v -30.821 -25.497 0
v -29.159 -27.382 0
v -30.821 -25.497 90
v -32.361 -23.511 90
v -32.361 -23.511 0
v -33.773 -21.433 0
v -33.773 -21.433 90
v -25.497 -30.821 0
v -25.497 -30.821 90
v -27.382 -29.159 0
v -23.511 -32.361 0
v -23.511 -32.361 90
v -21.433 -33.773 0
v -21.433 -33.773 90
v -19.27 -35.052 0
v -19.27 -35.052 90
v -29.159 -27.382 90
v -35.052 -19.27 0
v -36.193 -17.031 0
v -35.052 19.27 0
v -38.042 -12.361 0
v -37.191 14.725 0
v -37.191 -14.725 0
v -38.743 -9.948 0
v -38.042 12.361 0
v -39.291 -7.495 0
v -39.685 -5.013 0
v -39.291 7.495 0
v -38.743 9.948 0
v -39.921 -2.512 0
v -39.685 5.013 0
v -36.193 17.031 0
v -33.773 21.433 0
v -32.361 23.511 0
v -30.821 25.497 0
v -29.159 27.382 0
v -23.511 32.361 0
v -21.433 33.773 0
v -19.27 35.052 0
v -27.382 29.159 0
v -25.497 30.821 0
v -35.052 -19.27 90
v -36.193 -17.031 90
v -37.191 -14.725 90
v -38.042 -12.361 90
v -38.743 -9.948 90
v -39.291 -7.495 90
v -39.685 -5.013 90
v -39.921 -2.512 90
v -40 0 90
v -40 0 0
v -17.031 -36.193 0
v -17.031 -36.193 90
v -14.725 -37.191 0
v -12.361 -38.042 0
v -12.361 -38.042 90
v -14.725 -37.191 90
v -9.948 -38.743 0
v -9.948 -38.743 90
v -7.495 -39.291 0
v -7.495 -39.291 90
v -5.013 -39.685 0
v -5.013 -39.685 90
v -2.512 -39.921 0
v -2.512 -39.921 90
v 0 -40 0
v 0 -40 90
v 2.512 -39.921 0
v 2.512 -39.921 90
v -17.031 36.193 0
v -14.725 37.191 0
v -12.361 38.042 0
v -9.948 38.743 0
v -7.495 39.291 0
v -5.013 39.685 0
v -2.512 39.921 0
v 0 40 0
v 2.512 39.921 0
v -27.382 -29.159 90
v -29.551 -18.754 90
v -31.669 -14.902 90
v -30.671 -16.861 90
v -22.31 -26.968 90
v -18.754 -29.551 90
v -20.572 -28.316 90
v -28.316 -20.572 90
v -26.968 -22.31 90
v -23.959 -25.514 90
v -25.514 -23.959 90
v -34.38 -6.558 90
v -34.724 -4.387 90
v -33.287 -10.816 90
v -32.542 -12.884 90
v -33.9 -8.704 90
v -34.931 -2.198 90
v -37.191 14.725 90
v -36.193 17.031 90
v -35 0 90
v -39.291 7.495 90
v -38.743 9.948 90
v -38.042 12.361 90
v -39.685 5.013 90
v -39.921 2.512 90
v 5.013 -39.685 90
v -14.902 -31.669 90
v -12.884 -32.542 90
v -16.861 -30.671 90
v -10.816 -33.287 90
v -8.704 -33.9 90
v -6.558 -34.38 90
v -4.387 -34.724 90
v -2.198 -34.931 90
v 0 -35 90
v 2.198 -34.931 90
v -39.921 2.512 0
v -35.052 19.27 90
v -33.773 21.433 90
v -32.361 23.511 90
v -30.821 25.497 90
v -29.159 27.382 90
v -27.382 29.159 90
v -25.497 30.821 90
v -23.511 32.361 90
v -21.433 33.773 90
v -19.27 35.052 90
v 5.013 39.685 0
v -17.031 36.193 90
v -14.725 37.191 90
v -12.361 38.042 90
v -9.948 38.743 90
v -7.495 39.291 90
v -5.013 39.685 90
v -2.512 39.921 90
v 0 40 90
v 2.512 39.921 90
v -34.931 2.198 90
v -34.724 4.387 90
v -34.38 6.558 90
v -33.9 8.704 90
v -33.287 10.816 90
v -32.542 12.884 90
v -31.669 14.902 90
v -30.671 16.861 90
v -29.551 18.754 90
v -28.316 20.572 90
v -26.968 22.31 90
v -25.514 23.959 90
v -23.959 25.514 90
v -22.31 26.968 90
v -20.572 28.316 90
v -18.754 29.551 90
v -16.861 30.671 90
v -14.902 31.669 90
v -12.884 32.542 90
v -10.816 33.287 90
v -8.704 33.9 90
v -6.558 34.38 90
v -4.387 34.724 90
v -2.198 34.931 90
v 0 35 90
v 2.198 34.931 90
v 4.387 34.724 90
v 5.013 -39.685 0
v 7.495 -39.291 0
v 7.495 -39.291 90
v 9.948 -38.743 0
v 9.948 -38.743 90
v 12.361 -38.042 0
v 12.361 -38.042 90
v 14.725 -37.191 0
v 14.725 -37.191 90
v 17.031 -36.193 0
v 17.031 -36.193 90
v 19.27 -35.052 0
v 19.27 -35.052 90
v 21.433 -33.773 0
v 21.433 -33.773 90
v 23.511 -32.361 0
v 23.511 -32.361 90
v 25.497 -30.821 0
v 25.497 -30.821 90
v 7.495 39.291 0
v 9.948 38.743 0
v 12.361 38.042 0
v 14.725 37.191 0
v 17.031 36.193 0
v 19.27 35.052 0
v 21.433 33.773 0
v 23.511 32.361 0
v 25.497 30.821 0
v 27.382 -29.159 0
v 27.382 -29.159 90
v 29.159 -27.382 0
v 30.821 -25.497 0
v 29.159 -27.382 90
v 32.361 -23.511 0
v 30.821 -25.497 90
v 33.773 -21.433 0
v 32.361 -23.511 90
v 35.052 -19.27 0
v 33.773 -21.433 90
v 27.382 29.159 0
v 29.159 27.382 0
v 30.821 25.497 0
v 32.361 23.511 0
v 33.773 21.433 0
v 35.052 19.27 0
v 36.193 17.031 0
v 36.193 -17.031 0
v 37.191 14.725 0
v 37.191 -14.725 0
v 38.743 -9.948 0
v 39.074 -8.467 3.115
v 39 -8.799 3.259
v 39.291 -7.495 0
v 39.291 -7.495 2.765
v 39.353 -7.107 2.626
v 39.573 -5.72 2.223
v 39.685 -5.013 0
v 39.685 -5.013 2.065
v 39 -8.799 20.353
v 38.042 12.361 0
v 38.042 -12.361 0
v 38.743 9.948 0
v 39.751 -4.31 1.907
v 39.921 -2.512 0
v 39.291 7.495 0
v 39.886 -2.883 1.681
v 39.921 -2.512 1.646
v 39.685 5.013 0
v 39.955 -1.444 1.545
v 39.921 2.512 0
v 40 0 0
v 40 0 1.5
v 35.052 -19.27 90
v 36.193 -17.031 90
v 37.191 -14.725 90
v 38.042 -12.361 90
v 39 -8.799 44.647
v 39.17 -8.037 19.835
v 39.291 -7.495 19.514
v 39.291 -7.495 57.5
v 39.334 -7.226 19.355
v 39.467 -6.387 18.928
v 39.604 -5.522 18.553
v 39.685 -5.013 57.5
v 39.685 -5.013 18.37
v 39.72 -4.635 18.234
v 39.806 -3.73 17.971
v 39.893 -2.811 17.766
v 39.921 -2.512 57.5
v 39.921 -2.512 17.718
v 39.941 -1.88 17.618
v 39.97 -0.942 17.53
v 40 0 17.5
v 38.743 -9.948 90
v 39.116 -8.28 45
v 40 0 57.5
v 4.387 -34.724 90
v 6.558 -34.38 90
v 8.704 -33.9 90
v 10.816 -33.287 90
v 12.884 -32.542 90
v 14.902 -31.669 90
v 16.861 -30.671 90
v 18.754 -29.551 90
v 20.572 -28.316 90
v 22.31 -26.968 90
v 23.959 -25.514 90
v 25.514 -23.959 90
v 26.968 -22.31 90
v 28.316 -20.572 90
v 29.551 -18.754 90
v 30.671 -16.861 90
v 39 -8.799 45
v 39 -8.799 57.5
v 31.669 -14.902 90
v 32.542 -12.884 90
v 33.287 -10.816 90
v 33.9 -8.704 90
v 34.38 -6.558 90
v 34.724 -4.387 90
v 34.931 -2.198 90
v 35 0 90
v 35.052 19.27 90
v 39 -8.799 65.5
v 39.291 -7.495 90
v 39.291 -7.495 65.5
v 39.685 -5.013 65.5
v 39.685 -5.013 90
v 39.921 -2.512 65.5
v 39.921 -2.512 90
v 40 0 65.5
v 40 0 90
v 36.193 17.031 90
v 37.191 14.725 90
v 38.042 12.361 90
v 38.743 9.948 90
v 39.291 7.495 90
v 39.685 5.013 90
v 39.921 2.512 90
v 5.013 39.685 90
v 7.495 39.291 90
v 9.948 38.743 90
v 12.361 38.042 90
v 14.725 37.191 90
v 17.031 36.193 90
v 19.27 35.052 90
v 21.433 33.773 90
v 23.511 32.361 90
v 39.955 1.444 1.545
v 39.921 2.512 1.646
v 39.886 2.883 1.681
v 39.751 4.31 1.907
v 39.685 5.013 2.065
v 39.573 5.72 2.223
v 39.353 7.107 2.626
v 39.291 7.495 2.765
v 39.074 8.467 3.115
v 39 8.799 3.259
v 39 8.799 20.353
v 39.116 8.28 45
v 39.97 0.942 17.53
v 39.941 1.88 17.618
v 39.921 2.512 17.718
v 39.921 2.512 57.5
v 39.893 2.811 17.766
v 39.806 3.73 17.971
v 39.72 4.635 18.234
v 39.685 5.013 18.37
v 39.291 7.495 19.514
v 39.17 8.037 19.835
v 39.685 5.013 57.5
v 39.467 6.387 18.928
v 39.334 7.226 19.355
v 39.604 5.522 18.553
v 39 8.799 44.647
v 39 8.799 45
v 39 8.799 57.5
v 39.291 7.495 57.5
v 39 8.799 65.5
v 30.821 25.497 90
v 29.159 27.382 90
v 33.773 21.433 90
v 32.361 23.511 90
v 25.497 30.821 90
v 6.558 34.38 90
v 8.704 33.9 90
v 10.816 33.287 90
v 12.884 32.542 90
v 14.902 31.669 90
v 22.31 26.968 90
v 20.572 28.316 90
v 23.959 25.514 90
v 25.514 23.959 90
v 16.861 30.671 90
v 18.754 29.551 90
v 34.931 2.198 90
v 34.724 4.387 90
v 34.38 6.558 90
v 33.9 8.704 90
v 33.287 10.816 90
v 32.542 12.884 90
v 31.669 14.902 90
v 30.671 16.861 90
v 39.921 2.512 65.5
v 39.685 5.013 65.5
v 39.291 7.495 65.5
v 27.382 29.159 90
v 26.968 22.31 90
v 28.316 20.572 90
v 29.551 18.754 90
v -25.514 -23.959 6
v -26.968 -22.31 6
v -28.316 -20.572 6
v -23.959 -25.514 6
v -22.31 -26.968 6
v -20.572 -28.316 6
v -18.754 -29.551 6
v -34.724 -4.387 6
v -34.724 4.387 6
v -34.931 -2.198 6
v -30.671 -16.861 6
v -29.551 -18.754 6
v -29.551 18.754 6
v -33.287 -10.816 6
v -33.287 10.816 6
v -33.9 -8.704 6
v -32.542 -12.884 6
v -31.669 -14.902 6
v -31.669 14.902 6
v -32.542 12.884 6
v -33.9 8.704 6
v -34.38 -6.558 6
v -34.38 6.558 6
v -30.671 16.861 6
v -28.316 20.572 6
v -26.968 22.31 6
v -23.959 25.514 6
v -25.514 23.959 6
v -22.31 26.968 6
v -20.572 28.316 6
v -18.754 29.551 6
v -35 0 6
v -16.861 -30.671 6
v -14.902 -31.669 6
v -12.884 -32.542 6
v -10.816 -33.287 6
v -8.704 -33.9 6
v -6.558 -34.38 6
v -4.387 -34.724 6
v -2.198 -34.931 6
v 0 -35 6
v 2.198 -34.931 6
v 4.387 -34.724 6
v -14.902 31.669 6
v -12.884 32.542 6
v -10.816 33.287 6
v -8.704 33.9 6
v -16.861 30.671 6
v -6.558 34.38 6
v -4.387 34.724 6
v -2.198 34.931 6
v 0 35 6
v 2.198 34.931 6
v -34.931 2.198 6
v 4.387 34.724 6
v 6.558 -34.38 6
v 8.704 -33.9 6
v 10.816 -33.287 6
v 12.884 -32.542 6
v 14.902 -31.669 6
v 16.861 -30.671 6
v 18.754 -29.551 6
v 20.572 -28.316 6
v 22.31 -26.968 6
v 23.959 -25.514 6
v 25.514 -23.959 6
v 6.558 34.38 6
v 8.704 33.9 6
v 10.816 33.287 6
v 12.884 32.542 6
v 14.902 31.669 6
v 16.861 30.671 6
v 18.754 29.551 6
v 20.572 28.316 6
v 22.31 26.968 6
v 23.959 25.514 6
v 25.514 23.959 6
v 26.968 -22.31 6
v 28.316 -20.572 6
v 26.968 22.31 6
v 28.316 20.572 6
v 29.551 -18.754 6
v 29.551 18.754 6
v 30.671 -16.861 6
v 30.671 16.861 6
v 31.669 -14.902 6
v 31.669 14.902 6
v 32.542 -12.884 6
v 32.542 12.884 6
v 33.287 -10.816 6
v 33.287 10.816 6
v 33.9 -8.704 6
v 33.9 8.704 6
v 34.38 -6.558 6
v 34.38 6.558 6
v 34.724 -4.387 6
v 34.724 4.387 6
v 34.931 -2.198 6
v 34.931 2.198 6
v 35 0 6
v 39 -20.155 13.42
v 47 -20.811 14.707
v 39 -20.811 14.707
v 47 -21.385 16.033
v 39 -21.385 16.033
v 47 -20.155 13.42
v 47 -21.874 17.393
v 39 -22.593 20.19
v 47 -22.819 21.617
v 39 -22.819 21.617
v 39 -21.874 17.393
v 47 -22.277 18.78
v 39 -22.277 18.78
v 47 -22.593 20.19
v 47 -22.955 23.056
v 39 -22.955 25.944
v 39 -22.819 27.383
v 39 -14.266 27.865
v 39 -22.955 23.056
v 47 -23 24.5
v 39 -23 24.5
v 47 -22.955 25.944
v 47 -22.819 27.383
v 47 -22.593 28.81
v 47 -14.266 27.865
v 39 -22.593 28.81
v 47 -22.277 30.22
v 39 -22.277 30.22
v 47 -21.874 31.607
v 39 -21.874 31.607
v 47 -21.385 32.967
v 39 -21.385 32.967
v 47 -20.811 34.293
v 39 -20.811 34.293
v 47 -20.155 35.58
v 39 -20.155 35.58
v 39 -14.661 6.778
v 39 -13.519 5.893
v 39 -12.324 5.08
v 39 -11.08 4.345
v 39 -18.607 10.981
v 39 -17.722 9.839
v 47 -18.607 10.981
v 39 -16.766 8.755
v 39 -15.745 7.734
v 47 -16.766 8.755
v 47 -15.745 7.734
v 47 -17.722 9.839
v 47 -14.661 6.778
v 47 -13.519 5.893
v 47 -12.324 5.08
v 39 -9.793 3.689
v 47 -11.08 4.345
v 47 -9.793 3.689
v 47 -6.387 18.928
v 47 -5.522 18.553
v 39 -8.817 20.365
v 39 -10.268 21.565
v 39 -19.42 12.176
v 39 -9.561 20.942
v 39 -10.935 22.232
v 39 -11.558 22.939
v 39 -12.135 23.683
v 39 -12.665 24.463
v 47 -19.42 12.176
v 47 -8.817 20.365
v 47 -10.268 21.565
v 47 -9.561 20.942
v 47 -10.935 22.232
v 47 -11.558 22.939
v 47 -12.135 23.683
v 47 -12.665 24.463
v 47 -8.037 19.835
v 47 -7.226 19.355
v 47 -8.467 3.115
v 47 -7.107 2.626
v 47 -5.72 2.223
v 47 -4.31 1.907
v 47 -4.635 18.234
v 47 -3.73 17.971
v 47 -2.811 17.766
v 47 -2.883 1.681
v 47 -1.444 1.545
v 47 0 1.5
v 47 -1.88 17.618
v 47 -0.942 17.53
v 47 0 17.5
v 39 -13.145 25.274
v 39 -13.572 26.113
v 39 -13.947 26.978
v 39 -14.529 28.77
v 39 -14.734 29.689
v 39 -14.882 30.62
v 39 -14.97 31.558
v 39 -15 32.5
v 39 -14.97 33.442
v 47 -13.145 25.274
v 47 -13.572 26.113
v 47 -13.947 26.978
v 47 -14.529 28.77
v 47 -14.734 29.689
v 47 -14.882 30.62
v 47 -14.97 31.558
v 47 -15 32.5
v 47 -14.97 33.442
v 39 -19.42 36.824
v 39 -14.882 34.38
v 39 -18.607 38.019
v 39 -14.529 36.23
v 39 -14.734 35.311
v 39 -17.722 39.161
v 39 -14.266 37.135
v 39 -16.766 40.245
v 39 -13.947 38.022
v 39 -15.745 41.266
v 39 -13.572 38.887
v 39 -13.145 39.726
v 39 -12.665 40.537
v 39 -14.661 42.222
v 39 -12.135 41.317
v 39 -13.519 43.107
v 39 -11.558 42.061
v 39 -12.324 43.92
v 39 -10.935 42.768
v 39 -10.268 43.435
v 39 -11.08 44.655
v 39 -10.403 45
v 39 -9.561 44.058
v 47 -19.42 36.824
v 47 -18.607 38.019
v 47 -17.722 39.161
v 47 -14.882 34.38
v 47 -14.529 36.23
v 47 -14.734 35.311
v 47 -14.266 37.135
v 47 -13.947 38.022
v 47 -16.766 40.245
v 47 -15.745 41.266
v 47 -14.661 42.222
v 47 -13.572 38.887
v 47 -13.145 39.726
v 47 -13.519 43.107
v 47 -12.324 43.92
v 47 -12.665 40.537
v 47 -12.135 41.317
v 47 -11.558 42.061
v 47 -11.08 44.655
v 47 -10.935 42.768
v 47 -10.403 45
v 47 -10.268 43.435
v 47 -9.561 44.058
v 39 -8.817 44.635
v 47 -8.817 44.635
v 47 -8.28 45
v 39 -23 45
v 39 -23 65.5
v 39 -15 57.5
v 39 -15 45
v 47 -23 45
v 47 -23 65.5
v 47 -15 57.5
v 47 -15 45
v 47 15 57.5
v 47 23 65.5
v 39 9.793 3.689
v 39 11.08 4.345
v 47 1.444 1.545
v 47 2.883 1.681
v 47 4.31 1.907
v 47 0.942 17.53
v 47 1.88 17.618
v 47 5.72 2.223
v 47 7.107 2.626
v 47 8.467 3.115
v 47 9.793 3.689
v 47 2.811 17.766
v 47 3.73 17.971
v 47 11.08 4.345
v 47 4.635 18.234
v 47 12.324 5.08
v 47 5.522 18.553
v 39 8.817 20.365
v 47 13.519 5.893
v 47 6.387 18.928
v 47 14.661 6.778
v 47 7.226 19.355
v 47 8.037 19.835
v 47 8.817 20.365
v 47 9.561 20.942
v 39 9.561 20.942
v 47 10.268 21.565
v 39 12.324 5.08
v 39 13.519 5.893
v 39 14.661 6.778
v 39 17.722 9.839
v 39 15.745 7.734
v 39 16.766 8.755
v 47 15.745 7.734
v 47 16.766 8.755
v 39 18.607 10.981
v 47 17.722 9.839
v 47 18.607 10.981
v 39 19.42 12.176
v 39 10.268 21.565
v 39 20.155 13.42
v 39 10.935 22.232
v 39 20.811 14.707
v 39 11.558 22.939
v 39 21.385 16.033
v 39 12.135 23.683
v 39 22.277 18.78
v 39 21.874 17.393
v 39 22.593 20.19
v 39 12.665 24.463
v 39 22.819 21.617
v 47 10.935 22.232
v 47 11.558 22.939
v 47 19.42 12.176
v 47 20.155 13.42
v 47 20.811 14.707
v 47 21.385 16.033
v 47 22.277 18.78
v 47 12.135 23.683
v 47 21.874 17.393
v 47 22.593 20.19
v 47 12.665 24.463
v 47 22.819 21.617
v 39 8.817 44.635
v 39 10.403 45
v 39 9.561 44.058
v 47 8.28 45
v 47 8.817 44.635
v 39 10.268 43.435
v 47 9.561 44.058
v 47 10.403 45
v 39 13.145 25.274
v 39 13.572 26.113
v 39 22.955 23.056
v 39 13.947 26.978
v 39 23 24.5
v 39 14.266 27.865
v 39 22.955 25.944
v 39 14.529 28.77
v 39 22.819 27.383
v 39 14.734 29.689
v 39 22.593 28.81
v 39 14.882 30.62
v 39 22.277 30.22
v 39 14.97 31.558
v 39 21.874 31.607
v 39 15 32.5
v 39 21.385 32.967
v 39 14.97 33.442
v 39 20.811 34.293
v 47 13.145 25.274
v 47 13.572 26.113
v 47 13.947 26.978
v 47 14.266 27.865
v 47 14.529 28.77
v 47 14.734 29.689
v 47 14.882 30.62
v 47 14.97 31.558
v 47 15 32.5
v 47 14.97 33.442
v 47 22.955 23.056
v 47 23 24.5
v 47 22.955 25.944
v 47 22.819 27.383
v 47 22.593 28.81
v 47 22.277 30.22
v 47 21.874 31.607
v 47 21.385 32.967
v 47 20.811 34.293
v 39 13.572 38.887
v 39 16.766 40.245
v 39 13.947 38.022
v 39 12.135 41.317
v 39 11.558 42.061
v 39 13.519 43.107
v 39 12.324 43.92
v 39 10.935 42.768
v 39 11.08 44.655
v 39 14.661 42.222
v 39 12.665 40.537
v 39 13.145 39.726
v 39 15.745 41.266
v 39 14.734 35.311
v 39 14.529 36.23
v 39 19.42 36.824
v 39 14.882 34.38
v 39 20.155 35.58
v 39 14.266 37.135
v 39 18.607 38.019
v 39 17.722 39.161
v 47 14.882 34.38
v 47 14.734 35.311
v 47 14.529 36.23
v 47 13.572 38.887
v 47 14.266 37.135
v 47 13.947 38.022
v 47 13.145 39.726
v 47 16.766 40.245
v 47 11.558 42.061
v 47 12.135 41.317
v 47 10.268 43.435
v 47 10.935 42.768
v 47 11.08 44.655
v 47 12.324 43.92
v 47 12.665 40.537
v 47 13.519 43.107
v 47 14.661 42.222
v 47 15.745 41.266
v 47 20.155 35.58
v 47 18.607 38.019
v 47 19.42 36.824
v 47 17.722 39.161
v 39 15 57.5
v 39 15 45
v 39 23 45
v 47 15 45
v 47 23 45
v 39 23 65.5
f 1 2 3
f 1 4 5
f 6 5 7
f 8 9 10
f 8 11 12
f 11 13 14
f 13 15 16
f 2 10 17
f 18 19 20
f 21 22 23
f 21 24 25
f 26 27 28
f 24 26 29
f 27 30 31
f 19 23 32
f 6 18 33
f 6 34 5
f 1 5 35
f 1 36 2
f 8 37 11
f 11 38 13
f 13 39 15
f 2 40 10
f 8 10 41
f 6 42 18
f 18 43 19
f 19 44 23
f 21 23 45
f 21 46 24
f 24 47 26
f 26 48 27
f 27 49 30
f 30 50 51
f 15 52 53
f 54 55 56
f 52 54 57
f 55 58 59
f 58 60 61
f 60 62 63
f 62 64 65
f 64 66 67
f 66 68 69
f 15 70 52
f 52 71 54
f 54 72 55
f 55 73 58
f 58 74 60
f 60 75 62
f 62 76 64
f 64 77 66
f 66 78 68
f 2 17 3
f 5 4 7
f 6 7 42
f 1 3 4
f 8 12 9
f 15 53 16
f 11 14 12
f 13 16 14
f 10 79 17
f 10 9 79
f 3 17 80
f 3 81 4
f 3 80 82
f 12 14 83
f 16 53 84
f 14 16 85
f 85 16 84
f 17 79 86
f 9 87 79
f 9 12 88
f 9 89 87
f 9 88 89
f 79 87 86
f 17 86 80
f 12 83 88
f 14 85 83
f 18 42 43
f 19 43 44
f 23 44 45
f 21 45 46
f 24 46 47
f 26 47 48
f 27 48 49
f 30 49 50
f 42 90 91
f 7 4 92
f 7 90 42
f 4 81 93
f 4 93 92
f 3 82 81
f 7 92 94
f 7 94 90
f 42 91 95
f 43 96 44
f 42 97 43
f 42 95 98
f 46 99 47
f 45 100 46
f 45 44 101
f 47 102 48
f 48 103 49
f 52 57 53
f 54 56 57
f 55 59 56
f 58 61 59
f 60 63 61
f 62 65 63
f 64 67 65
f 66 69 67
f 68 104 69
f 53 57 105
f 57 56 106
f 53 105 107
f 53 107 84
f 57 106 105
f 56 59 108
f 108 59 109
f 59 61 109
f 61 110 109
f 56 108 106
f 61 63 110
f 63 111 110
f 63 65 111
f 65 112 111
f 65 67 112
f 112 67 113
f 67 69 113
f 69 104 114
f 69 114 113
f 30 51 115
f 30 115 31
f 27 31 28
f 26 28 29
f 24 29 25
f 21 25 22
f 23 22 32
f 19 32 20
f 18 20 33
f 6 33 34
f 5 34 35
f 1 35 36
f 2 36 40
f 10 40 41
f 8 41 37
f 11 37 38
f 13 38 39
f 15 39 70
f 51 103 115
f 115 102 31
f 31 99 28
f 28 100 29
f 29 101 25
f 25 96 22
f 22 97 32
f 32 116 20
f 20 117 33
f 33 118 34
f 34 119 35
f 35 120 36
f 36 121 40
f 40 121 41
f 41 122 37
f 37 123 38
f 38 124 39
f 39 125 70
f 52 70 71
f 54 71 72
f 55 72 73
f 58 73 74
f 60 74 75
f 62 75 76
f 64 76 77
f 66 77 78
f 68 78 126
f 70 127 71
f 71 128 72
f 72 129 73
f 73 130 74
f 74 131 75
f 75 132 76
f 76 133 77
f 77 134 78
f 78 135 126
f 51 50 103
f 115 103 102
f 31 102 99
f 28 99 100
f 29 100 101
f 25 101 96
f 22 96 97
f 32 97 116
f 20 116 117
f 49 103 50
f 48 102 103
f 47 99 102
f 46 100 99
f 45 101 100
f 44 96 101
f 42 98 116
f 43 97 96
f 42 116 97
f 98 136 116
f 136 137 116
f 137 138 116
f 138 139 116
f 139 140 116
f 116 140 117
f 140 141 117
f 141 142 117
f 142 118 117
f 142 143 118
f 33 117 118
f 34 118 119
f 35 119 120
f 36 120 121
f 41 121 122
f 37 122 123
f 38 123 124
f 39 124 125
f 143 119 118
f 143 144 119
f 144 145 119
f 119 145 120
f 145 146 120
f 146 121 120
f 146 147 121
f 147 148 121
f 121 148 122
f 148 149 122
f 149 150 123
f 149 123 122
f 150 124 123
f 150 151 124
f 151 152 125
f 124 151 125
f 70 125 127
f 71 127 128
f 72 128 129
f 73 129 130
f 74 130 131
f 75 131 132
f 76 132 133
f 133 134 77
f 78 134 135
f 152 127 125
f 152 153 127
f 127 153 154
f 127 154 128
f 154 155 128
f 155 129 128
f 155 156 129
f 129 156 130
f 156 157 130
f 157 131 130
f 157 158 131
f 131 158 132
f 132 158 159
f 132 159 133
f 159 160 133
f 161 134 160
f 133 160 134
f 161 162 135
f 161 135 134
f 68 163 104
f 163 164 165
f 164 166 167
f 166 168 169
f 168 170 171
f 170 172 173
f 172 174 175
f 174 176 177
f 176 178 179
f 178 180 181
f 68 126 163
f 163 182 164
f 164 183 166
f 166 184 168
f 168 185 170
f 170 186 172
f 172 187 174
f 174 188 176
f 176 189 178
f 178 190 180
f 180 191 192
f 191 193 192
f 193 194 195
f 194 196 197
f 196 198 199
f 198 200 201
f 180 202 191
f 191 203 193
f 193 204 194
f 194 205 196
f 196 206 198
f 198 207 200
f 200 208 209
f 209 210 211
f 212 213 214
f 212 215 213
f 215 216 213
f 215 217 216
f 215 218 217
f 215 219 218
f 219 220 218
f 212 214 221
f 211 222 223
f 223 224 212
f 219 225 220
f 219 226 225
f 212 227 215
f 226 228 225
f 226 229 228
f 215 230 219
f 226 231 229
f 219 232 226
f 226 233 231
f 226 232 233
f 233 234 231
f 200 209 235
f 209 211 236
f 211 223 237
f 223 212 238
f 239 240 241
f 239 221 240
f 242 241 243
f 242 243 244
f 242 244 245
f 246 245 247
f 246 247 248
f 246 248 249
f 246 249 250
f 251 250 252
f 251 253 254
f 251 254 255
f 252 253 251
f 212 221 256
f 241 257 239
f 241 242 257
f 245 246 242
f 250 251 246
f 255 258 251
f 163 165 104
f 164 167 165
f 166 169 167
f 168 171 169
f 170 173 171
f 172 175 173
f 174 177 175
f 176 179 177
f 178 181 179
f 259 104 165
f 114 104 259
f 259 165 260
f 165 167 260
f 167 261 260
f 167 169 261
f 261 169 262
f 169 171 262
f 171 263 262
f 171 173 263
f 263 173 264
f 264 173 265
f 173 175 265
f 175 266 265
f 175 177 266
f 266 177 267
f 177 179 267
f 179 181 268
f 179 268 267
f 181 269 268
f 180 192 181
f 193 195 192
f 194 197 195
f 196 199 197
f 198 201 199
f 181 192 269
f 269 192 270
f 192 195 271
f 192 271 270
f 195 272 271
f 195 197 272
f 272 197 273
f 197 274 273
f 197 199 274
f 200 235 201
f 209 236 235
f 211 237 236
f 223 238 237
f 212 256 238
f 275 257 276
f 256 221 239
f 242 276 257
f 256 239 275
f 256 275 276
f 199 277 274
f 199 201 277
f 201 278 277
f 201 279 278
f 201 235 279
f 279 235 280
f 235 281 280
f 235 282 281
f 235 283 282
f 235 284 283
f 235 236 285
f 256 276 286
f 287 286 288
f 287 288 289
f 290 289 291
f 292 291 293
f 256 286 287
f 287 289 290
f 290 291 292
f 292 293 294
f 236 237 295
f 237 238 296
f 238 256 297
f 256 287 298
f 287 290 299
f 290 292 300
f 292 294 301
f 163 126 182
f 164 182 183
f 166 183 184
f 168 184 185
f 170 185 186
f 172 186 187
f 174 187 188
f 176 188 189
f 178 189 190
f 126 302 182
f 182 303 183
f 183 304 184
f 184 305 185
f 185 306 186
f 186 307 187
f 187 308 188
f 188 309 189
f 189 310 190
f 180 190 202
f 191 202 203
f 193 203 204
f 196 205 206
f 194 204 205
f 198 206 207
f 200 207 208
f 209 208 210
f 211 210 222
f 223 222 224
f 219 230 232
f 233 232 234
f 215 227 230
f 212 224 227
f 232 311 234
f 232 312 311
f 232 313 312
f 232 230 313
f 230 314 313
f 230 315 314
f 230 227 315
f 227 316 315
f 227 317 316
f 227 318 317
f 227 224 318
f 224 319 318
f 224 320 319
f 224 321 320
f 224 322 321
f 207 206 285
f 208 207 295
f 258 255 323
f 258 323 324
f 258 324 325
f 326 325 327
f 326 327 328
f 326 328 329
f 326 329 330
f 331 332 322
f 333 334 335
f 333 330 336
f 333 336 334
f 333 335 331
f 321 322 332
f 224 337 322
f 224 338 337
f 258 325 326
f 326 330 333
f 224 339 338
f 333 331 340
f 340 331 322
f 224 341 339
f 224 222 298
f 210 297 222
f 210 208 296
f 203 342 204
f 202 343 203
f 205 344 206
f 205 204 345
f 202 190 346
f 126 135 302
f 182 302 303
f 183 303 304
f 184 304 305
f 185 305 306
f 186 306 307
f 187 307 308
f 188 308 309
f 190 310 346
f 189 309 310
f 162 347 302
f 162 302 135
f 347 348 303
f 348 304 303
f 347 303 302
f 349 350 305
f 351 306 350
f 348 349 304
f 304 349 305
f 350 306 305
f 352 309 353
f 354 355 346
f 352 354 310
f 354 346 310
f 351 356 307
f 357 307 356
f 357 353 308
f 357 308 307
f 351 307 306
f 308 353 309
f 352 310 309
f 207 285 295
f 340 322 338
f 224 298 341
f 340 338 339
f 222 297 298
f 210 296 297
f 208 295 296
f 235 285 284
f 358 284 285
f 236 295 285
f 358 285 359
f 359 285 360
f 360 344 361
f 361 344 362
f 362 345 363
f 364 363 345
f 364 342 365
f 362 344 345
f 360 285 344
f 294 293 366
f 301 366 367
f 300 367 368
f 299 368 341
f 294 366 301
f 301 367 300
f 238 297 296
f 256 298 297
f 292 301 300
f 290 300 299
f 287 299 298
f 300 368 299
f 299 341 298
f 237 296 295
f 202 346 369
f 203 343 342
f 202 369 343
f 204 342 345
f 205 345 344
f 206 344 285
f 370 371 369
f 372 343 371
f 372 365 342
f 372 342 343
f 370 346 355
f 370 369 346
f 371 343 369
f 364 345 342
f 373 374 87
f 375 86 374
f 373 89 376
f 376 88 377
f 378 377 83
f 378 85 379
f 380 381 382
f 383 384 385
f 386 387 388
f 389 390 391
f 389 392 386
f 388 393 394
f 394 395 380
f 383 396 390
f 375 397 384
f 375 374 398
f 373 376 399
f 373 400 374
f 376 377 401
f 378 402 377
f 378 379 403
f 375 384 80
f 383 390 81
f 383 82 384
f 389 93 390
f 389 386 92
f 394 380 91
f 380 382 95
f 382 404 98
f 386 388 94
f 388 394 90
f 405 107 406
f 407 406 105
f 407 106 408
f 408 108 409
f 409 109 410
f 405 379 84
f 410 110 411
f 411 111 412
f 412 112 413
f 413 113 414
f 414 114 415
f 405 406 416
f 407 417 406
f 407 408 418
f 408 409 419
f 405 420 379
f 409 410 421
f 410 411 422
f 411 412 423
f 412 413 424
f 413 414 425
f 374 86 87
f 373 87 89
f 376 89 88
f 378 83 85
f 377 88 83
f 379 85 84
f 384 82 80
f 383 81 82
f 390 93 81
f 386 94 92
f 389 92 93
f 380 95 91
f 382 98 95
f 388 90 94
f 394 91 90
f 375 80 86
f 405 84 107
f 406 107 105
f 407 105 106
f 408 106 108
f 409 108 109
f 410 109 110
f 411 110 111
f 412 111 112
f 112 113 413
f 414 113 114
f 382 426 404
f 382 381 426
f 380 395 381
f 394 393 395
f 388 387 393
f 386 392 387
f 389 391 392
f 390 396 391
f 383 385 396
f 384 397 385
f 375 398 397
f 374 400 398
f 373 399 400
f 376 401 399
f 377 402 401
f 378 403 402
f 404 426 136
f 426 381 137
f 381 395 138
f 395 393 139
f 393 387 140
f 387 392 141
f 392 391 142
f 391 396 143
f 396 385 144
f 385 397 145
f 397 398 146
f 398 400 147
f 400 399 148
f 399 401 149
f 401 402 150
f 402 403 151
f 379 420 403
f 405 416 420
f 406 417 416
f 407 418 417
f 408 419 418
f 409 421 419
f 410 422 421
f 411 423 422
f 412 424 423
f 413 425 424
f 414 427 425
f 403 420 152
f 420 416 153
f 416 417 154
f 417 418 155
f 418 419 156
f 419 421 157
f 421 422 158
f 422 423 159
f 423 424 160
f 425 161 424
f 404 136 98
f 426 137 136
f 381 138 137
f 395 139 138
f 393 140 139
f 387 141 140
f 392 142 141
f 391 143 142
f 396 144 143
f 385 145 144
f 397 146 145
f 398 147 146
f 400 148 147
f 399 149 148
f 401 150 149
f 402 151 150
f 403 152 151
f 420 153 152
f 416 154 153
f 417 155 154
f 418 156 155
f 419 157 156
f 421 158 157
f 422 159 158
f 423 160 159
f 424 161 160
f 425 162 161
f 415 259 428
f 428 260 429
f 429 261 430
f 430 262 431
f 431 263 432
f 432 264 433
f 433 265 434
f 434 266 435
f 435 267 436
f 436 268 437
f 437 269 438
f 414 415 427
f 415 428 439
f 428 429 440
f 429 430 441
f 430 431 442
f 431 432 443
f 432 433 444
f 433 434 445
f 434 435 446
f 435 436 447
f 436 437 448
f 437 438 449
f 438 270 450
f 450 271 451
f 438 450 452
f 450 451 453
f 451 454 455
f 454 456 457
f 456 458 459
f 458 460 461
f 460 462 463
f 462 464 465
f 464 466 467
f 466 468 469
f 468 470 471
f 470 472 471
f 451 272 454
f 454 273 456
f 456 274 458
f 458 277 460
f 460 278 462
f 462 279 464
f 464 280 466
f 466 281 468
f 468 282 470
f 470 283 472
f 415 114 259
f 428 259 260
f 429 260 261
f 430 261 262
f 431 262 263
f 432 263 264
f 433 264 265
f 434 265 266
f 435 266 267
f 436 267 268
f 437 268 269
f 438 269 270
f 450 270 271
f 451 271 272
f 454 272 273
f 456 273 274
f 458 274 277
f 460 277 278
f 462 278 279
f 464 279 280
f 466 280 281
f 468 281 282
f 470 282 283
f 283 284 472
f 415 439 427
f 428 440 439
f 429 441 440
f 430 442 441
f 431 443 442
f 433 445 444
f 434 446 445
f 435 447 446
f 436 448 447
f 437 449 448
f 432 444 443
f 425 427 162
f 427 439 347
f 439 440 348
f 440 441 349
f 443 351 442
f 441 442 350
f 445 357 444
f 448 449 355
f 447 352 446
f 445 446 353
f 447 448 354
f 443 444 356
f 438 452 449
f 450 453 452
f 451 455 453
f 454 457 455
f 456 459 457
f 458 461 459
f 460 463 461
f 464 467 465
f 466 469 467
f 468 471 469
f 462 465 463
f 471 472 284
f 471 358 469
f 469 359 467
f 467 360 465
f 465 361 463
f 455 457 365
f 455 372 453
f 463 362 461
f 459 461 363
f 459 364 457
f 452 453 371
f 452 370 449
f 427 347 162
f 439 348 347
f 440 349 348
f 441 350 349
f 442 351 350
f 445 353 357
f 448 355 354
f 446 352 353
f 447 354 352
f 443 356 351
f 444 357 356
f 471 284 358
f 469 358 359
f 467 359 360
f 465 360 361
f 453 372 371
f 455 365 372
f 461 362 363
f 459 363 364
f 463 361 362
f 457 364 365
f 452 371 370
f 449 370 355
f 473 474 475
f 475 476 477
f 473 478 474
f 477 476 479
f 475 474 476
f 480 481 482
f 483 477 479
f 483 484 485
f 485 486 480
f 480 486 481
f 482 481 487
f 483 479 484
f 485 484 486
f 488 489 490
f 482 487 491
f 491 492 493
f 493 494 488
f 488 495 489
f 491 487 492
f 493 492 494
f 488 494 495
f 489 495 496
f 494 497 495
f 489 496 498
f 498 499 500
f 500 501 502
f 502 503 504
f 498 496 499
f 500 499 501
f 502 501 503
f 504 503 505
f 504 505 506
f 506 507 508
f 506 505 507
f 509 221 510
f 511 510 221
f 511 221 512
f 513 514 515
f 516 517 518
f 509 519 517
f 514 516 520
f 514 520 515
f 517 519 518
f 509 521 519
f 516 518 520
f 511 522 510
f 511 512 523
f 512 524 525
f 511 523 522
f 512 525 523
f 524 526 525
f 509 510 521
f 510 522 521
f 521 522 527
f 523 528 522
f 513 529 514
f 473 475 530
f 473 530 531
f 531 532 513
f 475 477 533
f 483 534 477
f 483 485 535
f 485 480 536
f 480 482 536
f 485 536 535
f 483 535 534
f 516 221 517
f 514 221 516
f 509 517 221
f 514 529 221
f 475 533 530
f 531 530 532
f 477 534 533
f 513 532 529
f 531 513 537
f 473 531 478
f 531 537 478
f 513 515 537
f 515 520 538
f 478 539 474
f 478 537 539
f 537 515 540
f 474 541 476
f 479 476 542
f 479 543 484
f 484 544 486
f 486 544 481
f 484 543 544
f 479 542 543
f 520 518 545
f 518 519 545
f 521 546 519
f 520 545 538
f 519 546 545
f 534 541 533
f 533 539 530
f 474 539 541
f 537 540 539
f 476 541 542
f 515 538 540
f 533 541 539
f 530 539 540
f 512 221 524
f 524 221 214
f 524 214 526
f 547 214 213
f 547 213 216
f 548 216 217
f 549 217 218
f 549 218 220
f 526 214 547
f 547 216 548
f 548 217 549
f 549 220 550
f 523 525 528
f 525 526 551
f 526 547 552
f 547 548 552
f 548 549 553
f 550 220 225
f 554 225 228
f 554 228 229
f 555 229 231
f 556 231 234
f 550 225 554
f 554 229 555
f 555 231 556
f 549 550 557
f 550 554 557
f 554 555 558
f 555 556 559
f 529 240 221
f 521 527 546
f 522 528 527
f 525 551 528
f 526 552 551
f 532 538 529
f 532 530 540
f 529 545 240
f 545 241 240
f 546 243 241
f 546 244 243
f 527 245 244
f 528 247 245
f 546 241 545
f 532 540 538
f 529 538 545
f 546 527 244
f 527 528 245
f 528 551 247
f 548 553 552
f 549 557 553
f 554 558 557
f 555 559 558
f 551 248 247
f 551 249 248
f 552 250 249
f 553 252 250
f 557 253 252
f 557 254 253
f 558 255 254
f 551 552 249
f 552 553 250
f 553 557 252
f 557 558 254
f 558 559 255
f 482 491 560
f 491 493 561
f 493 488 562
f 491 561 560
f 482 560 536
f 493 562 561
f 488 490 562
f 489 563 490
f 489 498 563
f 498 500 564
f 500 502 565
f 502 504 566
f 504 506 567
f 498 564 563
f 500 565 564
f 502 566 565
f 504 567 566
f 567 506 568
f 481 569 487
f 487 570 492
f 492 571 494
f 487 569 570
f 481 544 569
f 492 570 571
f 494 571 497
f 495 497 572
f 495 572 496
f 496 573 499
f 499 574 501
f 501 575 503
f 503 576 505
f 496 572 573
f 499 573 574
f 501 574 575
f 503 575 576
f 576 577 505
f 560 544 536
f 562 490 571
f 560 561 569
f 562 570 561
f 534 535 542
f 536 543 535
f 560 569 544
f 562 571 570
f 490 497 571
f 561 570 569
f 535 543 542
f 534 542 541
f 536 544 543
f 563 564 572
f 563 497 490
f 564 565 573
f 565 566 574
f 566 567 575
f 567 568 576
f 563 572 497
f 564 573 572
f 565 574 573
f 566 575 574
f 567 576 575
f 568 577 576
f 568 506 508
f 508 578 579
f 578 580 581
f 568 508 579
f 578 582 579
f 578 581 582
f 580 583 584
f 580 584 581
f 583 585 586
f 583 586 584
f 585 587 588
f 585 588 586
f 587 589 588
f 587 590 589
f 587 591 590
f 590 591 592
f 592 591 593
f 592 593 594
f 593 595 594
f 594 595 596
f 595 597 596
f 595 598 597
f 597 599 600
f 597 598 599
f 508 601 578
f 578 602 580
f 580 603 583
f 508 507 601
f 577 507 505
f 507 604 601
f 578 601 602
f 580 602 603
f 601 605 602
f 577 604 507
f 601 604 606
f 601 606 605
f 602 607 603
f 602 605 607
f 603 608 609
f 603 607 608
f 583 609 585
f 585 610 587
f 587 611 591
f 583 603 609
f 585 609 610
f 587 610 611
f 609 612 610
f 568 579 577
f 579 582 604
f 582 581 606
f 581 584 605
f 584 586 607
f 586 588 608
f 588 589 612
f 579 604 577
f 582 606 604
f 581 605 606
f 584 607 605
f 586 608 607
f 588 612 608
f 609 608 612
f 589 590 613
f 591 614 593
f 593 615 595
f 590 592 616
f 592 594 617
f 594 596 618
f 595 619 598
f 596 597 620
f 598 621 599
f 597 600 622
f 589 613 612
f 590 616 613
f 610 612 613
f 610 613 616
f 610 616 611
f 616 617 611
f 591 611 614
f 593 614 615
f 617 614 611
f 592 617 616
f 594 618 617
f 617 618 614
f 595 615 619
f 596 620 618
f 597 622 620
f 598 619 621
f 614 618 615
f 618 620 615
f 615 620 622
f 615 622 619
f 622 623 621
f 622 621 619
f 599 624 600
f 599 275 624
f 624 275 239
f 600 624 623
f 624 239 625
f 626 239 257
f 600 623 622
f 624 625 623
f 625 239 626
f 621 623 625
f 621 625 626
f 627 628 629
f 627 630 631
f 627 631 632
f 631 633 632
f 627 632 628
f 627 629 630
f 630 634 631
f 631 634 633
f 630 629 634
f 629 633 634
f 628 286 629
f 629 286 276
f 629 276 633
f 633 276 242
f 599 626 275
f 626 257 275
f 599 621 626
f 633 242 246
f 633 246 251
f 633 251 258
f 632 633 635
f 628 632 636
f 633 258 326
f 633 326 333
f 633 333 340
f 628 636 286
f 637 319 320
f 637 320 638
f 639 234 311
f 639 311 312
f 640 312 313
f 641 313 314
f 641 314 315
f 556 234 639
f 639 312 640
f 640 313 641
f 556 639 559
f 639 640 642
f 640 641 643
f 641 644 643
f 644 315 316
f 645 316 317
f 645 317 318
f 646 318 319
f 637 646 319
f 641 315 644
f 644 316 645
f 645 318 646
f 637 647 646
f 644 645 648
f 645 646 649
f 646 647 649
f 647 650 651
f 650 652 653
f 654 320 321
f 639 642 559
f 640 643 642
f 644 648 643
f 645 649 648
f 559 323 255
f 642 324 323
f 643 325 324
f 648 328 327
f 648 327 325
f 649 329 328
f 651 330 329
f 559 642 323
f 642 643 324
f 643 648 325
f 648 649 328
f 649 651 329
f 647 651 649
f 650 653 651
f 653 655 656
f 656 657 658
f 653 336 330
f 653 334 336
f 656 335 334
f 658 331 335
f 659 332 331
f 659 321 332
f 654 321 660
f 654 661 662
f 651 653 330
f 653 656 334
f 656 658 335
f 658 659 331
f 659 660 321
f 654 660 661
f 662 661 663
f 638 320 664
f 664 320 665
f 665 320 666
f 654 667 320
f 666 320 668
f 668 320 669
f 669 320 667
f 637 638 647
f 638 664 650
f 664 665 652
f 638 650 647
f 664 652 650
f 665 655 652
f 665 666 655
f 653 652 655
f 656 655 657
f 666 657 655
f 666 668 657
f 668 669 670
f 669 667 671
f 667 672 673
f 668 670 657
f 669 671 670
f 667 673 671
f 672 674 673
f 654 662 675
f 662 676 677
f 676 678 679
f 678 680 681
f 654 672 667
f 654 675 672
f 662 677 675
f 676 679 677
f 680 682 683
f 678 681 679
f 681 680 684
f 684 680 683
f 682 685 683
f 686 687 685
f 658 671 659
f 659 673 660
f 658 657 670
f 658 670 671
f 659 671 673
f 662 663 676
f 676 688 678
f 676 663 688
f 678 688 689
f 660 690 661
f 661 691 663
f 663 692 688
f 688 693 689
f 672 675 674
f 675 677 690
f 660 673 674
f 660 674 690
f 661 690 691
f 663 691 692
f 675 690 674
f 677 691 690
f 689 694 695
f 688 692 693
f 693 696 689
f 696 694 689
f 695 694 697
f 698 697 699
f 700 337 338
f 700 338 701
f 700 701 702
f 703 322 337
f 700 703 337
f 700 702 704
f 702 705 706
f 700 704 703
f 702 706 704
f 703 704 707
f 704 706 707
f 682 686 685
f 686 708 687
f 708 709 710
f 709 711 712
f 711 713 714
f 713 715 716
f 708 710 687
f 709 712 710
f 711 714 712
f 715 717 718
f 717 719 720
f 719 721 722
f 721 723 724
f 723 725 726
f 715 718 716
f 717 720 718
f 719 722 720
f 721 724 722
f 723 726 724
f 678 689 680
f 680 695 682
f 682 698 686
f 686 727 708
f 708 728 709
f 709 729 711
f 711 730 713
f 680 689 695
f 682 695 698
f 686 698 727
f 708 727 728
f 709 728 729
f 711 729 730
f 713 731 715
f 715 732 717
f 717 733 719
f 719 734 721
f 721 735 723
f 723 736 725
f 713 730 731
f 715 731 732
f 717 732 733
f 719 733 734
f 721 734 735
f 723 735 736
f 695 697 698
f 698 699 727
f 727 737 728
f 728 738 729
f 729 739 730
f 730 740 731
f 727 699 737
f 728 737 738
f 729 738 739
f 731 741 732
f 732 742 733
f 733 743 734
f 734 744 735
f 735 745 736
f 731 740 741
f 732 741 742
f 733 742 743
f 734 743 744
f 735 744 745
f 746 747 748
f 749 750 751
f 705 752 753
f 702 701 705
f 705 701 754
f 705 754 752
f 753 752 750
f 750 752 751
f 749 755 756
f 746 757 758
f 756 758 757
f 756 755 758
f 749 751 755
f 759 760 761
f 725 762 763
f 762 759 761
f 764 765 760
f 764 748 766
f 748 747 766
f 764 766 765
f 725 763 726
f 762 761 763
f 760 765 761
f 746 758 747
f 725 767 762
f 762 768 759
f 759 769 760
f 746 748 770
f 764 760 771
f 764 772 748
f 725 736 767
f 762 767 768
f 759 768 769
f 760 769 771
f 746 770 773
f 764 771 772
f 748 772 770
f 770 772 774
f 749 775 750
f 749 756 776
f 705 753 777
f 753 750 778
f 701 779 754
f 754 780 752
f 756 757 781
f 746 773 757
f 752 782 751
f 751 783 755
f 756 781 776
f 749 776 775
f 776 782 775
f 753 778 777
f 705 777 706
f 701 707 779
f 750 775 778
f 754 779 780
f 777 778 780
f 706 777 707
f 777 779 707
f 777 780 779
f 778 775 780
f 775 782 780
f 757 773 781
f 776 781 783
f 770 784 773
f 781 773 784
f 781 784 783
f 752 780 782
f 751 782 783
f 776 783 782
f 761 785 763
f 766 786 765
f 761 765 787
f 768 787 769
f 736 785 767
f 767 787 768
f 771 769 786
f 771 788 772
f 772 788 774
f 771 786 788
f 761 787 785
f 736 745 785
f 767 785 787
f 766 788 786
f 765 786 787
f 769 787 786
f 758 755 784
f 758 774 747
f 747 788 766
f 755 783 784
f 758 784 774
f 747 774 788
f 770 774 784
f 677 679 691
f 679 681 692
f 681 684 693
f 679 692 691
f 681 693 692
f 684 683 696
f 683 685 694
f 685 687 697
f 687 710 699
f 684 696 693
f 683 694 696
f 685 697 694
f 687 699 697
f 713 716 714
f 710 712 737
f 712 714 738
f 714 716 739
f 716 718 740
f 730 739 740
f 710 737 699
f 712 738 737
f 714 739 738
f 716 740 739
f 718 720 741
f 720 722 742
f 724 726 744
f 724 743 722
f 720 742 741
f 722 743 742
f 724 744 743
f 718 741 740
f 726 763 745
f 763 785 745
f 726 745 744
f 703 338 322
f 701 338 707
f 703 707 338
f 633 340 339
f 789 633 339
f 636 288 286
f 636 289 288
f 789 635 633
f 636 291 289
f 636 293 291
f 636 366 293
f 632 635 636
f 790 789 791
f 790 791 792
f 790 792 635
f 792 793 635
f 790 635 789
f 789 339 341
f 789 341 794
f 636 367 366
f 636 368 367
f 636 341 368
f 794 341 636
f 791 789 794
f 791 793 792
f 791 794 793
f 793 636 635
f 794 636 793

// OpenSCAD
// マグカップ本体 + 取手

$fn = 100;

outer_d = 80;
inner_d = 70;
height = 90;
bottom_thickness = 6;

module mug_body() {
    difference() {
        cylinder(d=outer_d, h=height);
        translate([0, 0, bottom_thickness])
            cylinder(d=inner_d, h=height - bottom_thickness + 1);
    }
}

// 取手パラメータ
handle_inner_h = 30; // 内側空間の高さ
handle_inner_w = 25; // 内側空間の幅(本体からの突き出し方向)
handle_thickness = 8; // 取手の太さ(D字の厚み)
handle_center_z = height / 2;

module handle() {
    outer_r = outer_d / 2;
    // D字形状の取手を、Y-Z平面上に断面として描き、X方向に押し出す
    // 外側:半円、本体側:直線 のD字形状を2Dで作り、linear_extrudeでX方向に厚みを持たせる

    // 外形の半径(内側空間 + 厚み)
    total_w = handle_inner_w + handle_thickness * 2;
    total_h = handle_inner_h + handle_thickness * 2;

    module d_shape(w, h) {
        // D字:上下は半円、本体側は直線でつながる断面(Y-Z平面, 原点は中心)
        r = h / 2;
        union() {
            // 半円部分(外側)
            translate([w - r - (w/2 - r), 0])
                circle(r = r);
            // 直線部分(本体側の矩形)
            translate([-(w/2), -r])
                square([w/2, h]);
        }
    }

    // outer d-shape
    module outer_dshape() {
        translate([0,0,0])
        d_shape(total_w, total_h);
    }

    // inner d-shape (穴)
    module inner_dshape() {
        d_shape(handle_inner_w, handle_inner_h);
    }

    // 2D形状をX軸方向へ厚み分押し出す(取手の厚み方向はX軸)
    translate([outer_r - 1, 0, handle_center_z])
        rotate([0, 90, 0])
            linear_extrude(height = handle_thickness, center = false)
                difference() {
                    outer_dshape();
                    inner_dshape();
                }
}

module mug() {
    union() {
        mug_body();
        handle();
    }
}

mug();
